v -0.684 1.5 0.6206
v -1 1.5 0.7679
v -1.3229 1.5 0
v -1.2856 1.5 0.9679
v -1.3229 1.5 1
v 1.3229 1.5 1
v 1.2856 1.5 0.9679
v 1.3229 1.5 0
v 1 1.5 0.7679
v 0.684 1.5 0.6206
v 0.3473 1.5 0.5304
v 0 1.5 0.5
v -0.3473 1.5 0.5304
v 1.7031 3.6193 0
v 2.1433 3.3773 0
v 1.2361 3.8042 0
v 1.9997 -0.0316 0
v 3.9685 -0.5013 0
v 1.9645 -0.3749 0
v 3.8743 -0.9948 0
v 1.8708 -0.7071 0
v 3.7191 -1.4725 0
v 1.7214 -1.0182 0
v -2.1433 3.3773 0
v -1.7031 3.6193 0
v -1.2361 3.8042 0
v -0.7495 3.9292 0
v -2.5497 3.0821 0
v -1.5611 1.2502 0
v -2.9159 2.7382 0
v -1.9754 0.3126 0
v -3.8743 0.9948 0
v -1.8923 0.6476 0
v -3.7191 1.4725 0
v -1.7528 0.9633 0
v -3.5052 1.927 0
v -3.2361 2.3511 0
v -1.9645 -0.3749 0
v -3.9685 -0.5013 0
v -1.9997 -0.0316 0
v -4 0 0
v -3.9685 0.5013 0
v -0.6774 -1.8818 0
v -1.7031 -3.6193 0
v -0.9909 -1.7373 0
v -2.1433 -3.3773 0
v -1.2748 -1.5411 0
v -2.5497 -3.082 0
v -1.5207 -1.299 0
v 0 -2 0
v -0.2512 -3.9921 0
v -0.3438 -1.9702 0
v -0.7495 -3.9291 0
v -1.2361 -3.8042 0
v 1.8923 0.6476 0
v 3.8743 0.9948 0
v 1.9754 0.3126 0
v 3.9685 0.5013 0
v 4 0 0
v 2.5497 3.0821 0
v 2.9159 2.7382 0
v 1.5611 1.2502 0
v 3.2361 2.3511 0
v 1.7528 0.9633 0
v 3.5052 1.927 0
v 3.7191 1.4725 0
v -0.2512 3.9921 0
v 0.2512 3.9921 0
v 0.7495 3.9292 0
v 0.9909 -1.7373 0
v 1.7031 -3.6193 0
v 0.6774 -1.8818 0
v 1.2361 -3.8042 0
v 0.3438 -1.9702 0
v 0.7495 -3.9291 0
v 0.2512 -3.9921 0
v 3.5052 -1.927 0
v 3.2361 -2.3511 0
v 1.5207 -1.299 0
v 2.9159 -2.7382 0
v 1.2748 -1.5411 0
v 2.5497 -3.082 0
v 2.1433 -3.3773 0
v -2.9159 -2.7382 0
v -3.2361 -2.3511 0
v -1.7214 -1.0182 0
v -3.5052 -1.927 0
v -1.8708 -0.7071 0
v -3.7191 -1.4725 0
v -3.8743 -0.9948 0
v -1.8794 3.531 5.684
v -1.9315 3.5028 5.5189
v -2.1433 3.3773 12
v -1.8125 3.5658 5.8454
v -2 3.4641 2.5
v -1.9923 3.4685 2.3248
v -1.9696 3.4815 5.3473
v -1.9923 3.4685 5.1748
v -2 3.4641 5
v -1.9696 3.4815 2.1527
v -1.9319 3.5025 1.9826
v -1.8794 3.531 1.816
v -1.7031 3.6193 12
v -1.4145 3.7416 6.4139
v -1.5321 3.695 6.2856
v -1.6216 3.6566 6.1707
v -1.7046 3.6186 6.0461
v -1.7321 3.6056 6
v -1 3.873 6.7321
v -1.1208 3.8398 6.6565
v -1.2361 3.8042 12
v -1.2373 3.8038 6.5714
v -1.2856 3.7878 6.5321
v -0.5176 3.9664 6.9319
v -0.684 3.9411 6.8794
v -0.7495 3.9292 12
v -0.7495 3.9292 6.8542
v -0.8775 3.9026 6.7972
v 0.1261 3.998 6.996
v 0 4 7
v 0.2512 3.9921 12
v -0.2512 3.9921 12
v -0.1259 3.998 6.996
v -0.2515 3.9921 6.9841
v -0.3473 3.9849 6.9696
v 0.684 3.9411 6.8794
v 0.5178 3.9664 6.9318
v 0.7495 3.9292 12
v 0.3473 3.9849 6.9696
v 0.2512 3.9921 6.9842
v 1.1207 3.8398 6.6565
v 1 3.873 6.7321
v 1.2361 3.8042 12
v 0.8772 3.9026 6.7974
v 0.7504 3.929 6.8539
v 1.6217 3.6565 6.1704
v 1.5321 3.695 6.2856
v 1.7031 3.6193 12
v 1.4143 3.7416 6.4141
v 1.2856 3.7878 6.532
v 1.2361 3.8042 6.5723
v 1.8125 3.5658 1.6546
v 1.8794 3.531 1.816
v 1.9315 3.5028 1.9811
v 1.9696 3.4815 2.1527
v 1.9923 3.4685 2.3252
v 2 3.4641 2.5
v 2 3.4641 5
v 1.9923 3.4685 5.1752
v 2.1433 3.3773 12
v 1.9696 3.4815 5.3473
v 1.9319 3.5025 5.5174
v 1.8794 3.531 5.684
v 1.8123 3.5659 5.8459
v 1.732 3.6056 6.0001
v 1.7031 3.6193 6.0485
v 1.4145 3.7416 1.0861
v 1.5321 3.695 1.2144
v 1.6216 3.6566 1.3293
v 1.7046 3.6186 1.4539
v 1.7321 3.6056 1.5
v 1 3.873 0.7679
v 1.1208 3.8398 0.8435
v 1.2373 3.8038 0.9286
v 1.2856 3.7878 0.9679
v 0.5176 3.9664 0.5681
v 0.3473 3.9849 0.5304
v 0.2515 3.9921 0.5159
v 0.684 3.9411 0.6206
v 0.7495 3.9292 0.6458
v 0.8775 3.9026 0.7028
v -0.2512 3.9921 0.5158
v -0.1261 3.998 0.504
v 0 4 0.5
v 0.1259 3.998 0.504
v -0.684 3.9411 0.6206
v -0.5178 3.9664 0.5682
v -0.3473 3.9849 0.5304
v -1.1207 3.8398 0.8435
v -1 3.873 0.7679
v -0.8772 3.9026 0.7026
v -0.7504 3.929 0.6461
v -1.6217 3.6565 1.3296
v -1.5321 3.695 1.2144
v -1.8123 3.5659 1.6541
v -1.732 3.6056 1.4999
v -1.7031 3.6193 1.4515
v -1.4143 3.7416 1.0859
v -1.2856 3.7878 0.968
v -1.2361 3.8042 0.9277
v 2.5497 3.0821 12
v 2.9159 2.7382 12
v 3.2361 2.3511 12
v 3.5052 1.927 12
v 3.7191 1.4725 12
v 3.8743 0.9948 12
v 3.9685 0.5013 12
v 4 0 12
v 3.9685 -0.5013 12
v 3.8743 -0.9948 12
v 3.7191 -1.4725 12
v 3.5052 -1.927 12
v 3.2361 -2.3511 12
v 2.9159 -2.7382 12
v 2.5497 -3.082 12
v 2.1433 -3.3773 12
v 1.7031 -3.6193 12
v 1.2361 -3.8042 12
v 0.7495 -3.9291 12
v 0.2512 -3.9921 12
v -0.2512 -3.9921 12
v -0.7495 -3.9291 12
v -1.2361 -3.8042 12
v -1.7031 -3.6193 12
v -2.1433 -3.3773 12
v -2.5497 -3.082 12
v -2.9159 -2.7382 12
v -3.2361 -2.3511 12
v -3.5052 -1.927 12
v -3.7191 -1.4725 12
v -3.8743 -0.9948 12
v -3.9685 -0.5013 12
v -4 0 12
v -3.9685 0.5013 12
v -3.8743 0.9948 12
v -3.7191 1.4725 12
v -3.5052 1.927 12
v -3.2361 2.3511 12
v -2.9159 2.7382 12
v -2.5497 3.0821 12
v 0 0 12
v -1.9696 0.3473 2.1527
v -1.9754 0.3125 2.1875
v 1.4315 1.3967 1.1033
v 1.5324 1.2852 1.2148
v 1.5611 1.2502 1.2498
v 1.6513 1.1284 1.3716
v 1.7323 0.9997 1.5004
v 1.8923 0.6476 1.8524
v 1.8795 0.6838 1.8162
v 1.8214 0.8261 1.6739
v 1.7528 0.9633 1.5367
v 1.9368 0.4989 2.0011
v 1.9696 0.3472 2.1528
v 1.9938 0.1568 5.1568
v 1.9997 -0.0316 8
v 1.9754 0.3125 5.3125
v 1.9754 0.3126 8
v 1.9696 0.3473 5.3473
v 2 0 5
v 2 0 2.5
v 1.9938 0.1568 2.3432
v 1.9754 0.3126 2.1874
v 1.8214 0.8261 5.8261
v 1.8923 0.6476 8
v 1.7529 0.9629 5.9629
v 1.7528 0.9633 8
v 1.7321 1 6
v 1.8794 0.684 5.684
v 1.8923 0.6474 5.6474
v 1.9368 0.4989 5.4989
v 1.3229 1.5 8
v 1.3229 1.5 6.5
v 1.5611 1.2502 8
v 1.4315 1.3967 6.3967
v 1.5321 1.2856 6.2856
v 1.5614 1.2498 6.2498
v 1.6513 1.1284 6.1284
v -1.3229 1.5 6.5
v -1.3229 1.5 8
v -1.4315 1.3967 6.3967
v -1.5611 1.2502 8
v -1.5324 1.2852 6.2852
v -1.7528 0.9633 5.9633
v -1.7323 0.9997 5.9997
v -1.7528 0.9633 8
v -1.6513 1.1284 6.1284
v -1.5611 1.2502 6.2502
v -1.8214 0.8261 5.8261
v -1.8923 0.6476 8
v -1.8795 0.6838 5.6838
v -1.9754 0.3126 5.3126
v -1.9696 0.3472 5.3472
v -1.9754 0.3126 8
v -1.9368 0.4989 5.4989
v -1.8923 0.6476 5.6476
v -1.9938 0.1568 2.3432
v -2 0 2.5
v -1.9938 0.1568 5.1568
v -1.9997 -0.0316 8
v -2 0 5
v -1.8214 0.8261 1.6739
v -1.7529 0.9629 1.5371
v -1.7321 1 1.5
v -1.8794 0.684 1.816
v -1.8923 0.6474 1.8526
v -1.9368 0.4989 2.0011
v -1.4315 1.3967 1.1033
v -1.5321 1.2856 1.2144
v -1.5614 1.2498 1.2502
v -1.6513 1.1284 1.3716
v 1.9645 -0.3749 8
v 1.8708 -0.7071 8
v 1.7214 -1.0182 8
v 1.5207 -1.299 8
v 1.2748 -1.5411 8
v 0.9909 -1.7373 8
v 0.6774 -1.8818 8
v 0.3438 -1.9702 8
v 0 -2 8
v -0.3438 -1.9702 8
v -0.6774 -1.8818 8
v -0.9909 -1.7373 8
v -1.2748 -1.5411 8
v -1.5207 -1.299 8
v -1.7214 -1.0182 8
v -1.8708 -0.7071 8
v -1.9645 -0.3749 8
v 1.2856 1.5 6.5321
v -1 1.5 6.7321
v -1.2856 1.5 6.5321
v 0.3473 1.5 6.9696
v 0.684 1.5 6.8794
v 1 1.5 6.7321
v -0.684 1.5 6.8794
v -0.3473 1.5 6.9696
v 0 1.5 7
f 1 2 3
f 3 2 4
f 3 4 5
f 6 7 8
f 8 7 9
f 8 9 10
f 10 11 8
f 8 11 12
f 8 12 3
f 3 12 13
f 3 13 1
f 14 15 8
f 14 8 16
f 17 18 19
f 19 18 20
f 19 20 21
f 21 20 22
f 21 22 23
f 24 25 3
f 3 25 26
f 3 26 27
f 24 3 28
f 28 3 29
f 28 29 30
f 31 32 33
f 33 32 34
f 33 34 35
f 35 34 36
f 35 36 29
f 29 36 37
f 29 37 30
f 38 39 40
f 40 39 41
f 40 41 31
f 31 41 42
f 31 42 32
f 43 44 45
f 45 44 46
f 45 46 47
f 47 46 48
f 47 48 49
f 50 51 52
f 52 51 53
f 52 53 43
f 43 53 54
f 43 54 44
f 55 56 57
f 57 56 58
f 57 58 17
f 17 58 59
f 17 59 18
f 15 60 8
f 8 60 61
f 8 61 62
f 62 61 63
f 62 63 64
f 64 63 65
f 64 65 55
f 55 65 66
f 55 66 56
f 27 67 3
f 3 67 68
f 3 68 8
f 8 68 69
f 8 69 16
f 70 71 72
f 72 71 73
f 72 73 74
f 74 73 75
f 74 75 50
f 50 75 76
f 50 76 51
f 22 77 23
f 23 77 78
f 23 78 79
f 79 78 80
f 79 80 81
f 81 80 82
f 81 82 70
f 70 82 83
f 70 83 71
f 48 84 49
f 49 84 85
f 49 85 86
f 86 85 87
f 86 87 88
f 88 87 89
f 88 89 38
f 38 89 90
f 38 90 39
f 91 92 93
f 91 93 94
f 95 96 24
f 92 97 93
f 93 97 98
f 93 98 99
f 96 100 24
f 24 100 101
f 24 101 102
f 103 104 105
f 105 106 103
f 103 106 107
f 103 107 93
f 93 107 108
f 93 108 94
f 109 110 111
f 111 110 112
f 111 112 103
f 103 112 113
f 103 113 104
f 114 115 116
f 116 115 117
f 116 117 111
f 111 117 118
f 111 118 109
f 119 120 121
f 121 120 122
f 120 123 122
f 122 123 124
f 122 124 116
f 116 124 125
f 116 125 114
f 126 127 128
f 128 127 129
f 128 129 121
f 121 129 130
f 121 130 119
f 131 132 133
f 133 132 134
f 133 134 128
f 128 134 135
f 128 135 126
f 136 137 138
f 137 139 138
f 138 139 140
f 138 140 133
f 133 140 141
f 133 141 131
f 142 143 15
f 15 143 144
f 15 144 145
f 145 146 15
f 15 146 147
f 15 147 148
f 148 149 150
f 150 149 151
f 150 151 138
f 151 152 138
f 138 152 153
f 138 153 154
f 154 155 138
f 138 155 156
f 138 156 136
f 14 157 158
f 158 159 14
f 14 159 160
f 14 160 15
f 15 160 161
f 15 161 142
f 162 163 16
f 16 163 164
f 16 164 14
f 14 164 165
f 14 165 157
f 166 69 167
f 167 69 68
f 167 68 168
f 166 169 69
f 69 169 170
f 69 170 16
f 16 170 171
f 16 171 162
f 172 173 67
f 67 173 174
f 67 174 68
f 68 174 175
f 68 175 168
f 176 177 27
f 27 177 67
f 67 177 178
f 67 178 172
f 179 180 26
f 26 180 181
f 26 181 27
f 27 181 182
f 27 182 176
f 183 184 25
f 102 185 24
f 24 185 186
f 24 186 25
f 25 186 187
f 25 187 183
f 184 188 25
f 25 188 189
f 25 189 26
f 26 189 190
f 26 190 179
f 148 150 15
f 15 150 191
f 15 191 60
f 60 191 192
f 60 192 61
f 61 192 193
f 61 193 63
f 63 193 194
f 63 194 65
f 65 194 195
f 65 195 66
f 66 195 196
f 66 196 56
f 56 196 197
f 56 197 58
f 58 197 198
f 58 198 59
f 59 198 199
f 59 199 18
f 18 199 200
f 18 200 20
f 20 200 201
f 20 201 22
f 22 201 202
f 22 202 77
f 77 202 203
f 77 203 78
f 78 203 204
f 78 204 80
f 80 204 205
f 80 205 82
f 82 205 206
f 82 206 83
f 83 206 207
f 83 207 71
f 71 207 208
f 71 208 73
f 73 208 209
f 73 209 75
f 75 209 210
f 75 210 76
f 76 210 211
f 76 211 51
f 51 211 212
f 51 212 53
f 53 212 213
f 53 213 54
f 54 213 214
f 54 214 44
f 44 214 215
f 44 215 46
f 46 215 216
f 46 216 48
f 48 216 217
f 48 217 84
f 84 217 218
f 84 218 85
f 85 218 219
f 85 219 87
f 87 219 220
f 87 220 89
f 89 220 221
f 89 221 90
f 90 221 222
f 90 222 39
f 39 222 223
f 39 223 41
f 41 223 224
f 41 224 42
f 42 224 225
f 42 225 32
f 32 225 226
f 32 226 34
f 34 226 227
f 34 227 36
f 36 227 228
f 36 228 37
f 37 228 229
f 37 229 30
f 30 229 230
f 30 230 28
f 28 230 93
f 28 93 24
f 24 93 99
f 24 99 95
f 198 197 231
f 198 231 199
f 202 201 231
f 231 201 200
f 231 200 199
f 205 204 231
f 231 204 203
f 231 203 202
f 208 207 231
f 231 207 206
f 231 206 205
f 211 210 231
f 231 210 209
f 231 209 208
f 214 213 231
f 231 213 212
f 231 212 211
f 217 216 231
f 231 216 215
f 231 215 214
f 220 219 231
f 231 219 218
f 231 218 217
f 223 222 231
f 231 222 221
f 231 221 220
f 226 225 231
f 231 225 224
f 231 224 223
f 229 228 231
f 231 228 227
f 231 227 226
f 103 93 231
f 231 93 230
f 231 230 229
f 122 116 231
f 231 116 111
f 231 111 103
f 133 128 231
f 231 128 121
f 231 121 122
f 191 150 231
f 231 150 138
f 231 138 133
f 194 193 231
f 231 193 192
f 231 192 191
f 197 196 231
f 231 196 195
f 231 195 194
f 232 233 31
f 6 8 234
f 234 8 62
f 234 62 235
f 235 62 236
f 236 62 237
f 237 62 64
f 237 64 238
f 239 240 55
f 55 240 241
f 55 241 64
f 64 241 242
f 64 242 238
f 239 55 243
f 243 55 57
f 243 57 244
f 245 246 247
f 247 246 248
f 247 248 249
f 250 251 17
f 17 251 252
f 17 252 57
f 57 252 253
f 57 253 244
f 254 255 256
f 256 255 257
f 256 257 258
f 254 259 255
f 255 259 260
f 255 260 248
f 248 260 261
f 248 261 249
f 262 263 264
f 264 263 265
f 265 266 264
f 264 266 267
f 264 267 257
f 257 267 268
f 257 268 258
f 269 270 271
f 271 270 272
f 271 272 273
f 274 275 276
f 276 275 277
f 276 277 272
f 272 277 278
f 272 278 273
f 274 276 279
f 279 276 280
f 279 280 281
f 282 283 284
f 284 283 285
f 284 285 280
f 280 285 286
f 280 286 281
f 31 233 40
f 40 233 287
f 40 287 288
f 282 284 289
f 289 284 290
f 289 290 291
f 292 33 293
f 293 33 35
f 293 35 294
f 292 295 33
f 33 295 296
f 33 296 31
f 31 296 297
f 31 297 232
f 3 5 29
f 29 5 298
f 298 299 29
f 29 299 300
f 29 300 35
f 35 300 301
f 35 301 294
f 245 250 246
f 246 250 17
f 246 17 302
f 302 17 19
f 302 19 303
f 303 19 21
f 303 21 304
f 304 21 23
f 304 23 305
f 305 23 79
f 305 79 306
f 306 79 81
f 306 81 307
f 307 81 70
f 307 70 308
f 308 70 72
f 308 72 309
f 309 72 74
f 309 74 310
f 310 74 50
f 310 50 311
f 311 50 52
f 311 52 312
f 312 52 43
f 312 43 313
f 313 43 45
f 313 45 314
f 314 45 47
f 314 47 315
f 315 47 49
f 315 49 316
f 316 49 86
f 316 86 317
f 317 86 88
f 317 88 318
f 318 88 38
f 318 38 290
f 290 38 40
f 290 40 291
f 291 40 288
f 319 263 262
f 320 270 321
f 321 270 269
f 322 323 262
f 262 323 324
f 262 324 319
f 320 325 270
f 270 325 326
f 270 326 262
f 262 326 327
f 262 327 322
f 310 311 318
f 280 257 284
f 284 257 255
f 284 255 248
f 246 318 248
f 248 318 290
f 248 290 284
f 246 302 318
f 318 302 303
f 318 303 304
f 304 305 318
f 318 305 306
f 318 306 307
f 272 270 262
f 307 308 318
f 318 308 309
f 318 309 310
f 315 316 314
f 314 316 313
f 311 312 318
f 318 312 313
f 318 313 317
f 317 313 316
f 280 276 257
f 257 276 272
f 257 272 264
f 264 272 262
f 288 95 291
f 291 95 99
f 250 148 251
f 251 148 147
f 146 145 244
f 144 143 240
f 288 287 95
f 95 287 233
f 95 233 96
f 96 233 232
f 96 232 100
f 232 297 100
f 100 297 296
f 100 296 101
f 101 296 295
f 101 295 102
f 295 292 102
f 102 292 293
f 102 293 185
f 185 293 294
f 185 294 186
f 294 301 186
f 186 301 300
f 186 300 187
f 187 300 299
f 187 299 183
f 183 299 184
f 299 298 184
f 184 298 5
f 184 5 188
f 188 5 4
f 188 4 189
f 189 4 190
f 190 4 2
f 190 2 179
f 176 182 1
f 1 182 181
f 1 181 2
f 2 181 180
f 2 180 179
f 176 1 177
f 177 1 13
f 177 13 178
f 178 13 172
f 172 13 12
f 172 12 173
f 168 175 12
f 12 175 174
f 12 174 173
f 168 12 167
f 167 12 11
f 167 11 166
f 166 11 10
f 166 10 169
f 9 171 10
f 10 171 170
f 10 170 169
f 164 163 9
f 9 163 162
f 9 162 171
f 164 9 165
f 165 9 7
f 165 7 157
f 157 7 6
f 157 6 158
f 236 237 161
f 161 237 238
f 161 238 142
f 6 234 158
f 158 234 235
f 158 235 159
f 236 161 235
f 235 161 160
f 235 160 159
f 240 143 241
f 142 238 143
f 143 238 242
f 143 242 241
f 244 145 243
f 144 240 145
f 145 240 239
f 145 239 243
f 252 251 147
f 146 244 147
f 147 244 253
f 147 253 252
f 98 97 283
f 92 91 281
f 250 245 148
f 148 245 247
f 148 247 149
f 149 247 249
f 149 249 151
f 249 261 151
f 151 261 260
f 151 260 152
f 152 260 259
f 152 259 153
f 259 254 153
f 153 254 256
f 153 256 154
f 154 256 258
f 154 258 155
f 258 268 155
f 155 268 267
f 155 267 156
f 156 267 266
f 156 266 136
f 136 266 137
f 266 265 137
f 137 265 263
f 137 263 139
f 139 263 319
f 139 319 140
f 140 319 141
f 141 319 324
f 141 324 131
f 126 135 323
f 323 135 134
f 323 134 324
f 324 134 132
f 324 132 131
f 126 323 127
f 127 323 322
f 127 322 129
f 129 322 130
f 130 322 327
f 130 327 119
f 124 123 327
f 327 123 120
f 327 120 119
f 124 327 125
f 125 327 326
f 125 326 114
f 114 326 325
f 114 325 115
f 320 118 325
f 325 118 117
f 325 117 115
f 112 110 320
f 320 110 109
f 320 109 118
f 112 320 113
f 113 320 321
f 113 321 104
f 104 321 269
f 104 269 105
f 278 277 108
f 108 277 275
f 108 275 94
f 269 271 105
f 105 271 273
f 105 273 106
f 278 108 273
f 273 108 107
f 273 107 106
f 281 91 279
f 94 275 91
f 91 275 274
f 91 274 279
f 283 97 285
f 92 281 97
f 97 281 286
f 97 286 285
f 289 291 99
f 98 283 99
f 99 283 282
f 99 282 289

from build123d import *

# Parameters (mm, degrees)
CROQUIS1_R              = 4
SALIENTE_EXTRUIR1_DEPTH = 12
CORTAR_EXTRUIR2_DEPTH   = 8
CORTAR_EXTRUIR3_START   = -2.5000001
CORTAR_EXTRUIR3_DEPTH   = 4.0000001


# Read off the part's stored shape, not the designer's step: Cortar-Extruir3
with BuildPart() as part:
    # Croquis1 → Saliente-Extruir1 (new body)
    with BuildSketch(Plane.XY):
        Circle(CROQUIS1_R)
    extrude(amount=SALIENTE_EXTRUIR1_DEPTH)

    # Croquis1<5> → Cortar-Extruir2 (cut)
    with BuildSketch(Plane.XY):
        with BuildLine():
            Line((-1.322875656, 1.5), (1.322875656, 1.5))
            ThreePointArc((1.322875656, 1.5), (0, -2), (-1.322875656, 1.5))
        make_face()
    extrude(amount=CORTAR_EXTRUIR2_DEPTH, mode=Mode.SUBTRACT)

    # Cortar-Extruir3 outline → Cortar-Extruir3 (cut)
    with BuildSketch(Plane.XZ.offset(-1.5).offset(CORTAR_EXTRUIR3_START)):
        with BuildLine():
            ThreePointArc((2, 5), (0, 7), (-2, 5))
            Line((-2, 5), (-2, 2.5))
            ThreePointArc((-2, 2.5), (0, 0.5), (2, 2.5))
            Line((2, 2.5), (2, 5))
        make_face()
    extrude(amount=CORTAR_EXTRUIR3_DEPTH, mode=Mode.SUBTRACT)


solid = part.part
